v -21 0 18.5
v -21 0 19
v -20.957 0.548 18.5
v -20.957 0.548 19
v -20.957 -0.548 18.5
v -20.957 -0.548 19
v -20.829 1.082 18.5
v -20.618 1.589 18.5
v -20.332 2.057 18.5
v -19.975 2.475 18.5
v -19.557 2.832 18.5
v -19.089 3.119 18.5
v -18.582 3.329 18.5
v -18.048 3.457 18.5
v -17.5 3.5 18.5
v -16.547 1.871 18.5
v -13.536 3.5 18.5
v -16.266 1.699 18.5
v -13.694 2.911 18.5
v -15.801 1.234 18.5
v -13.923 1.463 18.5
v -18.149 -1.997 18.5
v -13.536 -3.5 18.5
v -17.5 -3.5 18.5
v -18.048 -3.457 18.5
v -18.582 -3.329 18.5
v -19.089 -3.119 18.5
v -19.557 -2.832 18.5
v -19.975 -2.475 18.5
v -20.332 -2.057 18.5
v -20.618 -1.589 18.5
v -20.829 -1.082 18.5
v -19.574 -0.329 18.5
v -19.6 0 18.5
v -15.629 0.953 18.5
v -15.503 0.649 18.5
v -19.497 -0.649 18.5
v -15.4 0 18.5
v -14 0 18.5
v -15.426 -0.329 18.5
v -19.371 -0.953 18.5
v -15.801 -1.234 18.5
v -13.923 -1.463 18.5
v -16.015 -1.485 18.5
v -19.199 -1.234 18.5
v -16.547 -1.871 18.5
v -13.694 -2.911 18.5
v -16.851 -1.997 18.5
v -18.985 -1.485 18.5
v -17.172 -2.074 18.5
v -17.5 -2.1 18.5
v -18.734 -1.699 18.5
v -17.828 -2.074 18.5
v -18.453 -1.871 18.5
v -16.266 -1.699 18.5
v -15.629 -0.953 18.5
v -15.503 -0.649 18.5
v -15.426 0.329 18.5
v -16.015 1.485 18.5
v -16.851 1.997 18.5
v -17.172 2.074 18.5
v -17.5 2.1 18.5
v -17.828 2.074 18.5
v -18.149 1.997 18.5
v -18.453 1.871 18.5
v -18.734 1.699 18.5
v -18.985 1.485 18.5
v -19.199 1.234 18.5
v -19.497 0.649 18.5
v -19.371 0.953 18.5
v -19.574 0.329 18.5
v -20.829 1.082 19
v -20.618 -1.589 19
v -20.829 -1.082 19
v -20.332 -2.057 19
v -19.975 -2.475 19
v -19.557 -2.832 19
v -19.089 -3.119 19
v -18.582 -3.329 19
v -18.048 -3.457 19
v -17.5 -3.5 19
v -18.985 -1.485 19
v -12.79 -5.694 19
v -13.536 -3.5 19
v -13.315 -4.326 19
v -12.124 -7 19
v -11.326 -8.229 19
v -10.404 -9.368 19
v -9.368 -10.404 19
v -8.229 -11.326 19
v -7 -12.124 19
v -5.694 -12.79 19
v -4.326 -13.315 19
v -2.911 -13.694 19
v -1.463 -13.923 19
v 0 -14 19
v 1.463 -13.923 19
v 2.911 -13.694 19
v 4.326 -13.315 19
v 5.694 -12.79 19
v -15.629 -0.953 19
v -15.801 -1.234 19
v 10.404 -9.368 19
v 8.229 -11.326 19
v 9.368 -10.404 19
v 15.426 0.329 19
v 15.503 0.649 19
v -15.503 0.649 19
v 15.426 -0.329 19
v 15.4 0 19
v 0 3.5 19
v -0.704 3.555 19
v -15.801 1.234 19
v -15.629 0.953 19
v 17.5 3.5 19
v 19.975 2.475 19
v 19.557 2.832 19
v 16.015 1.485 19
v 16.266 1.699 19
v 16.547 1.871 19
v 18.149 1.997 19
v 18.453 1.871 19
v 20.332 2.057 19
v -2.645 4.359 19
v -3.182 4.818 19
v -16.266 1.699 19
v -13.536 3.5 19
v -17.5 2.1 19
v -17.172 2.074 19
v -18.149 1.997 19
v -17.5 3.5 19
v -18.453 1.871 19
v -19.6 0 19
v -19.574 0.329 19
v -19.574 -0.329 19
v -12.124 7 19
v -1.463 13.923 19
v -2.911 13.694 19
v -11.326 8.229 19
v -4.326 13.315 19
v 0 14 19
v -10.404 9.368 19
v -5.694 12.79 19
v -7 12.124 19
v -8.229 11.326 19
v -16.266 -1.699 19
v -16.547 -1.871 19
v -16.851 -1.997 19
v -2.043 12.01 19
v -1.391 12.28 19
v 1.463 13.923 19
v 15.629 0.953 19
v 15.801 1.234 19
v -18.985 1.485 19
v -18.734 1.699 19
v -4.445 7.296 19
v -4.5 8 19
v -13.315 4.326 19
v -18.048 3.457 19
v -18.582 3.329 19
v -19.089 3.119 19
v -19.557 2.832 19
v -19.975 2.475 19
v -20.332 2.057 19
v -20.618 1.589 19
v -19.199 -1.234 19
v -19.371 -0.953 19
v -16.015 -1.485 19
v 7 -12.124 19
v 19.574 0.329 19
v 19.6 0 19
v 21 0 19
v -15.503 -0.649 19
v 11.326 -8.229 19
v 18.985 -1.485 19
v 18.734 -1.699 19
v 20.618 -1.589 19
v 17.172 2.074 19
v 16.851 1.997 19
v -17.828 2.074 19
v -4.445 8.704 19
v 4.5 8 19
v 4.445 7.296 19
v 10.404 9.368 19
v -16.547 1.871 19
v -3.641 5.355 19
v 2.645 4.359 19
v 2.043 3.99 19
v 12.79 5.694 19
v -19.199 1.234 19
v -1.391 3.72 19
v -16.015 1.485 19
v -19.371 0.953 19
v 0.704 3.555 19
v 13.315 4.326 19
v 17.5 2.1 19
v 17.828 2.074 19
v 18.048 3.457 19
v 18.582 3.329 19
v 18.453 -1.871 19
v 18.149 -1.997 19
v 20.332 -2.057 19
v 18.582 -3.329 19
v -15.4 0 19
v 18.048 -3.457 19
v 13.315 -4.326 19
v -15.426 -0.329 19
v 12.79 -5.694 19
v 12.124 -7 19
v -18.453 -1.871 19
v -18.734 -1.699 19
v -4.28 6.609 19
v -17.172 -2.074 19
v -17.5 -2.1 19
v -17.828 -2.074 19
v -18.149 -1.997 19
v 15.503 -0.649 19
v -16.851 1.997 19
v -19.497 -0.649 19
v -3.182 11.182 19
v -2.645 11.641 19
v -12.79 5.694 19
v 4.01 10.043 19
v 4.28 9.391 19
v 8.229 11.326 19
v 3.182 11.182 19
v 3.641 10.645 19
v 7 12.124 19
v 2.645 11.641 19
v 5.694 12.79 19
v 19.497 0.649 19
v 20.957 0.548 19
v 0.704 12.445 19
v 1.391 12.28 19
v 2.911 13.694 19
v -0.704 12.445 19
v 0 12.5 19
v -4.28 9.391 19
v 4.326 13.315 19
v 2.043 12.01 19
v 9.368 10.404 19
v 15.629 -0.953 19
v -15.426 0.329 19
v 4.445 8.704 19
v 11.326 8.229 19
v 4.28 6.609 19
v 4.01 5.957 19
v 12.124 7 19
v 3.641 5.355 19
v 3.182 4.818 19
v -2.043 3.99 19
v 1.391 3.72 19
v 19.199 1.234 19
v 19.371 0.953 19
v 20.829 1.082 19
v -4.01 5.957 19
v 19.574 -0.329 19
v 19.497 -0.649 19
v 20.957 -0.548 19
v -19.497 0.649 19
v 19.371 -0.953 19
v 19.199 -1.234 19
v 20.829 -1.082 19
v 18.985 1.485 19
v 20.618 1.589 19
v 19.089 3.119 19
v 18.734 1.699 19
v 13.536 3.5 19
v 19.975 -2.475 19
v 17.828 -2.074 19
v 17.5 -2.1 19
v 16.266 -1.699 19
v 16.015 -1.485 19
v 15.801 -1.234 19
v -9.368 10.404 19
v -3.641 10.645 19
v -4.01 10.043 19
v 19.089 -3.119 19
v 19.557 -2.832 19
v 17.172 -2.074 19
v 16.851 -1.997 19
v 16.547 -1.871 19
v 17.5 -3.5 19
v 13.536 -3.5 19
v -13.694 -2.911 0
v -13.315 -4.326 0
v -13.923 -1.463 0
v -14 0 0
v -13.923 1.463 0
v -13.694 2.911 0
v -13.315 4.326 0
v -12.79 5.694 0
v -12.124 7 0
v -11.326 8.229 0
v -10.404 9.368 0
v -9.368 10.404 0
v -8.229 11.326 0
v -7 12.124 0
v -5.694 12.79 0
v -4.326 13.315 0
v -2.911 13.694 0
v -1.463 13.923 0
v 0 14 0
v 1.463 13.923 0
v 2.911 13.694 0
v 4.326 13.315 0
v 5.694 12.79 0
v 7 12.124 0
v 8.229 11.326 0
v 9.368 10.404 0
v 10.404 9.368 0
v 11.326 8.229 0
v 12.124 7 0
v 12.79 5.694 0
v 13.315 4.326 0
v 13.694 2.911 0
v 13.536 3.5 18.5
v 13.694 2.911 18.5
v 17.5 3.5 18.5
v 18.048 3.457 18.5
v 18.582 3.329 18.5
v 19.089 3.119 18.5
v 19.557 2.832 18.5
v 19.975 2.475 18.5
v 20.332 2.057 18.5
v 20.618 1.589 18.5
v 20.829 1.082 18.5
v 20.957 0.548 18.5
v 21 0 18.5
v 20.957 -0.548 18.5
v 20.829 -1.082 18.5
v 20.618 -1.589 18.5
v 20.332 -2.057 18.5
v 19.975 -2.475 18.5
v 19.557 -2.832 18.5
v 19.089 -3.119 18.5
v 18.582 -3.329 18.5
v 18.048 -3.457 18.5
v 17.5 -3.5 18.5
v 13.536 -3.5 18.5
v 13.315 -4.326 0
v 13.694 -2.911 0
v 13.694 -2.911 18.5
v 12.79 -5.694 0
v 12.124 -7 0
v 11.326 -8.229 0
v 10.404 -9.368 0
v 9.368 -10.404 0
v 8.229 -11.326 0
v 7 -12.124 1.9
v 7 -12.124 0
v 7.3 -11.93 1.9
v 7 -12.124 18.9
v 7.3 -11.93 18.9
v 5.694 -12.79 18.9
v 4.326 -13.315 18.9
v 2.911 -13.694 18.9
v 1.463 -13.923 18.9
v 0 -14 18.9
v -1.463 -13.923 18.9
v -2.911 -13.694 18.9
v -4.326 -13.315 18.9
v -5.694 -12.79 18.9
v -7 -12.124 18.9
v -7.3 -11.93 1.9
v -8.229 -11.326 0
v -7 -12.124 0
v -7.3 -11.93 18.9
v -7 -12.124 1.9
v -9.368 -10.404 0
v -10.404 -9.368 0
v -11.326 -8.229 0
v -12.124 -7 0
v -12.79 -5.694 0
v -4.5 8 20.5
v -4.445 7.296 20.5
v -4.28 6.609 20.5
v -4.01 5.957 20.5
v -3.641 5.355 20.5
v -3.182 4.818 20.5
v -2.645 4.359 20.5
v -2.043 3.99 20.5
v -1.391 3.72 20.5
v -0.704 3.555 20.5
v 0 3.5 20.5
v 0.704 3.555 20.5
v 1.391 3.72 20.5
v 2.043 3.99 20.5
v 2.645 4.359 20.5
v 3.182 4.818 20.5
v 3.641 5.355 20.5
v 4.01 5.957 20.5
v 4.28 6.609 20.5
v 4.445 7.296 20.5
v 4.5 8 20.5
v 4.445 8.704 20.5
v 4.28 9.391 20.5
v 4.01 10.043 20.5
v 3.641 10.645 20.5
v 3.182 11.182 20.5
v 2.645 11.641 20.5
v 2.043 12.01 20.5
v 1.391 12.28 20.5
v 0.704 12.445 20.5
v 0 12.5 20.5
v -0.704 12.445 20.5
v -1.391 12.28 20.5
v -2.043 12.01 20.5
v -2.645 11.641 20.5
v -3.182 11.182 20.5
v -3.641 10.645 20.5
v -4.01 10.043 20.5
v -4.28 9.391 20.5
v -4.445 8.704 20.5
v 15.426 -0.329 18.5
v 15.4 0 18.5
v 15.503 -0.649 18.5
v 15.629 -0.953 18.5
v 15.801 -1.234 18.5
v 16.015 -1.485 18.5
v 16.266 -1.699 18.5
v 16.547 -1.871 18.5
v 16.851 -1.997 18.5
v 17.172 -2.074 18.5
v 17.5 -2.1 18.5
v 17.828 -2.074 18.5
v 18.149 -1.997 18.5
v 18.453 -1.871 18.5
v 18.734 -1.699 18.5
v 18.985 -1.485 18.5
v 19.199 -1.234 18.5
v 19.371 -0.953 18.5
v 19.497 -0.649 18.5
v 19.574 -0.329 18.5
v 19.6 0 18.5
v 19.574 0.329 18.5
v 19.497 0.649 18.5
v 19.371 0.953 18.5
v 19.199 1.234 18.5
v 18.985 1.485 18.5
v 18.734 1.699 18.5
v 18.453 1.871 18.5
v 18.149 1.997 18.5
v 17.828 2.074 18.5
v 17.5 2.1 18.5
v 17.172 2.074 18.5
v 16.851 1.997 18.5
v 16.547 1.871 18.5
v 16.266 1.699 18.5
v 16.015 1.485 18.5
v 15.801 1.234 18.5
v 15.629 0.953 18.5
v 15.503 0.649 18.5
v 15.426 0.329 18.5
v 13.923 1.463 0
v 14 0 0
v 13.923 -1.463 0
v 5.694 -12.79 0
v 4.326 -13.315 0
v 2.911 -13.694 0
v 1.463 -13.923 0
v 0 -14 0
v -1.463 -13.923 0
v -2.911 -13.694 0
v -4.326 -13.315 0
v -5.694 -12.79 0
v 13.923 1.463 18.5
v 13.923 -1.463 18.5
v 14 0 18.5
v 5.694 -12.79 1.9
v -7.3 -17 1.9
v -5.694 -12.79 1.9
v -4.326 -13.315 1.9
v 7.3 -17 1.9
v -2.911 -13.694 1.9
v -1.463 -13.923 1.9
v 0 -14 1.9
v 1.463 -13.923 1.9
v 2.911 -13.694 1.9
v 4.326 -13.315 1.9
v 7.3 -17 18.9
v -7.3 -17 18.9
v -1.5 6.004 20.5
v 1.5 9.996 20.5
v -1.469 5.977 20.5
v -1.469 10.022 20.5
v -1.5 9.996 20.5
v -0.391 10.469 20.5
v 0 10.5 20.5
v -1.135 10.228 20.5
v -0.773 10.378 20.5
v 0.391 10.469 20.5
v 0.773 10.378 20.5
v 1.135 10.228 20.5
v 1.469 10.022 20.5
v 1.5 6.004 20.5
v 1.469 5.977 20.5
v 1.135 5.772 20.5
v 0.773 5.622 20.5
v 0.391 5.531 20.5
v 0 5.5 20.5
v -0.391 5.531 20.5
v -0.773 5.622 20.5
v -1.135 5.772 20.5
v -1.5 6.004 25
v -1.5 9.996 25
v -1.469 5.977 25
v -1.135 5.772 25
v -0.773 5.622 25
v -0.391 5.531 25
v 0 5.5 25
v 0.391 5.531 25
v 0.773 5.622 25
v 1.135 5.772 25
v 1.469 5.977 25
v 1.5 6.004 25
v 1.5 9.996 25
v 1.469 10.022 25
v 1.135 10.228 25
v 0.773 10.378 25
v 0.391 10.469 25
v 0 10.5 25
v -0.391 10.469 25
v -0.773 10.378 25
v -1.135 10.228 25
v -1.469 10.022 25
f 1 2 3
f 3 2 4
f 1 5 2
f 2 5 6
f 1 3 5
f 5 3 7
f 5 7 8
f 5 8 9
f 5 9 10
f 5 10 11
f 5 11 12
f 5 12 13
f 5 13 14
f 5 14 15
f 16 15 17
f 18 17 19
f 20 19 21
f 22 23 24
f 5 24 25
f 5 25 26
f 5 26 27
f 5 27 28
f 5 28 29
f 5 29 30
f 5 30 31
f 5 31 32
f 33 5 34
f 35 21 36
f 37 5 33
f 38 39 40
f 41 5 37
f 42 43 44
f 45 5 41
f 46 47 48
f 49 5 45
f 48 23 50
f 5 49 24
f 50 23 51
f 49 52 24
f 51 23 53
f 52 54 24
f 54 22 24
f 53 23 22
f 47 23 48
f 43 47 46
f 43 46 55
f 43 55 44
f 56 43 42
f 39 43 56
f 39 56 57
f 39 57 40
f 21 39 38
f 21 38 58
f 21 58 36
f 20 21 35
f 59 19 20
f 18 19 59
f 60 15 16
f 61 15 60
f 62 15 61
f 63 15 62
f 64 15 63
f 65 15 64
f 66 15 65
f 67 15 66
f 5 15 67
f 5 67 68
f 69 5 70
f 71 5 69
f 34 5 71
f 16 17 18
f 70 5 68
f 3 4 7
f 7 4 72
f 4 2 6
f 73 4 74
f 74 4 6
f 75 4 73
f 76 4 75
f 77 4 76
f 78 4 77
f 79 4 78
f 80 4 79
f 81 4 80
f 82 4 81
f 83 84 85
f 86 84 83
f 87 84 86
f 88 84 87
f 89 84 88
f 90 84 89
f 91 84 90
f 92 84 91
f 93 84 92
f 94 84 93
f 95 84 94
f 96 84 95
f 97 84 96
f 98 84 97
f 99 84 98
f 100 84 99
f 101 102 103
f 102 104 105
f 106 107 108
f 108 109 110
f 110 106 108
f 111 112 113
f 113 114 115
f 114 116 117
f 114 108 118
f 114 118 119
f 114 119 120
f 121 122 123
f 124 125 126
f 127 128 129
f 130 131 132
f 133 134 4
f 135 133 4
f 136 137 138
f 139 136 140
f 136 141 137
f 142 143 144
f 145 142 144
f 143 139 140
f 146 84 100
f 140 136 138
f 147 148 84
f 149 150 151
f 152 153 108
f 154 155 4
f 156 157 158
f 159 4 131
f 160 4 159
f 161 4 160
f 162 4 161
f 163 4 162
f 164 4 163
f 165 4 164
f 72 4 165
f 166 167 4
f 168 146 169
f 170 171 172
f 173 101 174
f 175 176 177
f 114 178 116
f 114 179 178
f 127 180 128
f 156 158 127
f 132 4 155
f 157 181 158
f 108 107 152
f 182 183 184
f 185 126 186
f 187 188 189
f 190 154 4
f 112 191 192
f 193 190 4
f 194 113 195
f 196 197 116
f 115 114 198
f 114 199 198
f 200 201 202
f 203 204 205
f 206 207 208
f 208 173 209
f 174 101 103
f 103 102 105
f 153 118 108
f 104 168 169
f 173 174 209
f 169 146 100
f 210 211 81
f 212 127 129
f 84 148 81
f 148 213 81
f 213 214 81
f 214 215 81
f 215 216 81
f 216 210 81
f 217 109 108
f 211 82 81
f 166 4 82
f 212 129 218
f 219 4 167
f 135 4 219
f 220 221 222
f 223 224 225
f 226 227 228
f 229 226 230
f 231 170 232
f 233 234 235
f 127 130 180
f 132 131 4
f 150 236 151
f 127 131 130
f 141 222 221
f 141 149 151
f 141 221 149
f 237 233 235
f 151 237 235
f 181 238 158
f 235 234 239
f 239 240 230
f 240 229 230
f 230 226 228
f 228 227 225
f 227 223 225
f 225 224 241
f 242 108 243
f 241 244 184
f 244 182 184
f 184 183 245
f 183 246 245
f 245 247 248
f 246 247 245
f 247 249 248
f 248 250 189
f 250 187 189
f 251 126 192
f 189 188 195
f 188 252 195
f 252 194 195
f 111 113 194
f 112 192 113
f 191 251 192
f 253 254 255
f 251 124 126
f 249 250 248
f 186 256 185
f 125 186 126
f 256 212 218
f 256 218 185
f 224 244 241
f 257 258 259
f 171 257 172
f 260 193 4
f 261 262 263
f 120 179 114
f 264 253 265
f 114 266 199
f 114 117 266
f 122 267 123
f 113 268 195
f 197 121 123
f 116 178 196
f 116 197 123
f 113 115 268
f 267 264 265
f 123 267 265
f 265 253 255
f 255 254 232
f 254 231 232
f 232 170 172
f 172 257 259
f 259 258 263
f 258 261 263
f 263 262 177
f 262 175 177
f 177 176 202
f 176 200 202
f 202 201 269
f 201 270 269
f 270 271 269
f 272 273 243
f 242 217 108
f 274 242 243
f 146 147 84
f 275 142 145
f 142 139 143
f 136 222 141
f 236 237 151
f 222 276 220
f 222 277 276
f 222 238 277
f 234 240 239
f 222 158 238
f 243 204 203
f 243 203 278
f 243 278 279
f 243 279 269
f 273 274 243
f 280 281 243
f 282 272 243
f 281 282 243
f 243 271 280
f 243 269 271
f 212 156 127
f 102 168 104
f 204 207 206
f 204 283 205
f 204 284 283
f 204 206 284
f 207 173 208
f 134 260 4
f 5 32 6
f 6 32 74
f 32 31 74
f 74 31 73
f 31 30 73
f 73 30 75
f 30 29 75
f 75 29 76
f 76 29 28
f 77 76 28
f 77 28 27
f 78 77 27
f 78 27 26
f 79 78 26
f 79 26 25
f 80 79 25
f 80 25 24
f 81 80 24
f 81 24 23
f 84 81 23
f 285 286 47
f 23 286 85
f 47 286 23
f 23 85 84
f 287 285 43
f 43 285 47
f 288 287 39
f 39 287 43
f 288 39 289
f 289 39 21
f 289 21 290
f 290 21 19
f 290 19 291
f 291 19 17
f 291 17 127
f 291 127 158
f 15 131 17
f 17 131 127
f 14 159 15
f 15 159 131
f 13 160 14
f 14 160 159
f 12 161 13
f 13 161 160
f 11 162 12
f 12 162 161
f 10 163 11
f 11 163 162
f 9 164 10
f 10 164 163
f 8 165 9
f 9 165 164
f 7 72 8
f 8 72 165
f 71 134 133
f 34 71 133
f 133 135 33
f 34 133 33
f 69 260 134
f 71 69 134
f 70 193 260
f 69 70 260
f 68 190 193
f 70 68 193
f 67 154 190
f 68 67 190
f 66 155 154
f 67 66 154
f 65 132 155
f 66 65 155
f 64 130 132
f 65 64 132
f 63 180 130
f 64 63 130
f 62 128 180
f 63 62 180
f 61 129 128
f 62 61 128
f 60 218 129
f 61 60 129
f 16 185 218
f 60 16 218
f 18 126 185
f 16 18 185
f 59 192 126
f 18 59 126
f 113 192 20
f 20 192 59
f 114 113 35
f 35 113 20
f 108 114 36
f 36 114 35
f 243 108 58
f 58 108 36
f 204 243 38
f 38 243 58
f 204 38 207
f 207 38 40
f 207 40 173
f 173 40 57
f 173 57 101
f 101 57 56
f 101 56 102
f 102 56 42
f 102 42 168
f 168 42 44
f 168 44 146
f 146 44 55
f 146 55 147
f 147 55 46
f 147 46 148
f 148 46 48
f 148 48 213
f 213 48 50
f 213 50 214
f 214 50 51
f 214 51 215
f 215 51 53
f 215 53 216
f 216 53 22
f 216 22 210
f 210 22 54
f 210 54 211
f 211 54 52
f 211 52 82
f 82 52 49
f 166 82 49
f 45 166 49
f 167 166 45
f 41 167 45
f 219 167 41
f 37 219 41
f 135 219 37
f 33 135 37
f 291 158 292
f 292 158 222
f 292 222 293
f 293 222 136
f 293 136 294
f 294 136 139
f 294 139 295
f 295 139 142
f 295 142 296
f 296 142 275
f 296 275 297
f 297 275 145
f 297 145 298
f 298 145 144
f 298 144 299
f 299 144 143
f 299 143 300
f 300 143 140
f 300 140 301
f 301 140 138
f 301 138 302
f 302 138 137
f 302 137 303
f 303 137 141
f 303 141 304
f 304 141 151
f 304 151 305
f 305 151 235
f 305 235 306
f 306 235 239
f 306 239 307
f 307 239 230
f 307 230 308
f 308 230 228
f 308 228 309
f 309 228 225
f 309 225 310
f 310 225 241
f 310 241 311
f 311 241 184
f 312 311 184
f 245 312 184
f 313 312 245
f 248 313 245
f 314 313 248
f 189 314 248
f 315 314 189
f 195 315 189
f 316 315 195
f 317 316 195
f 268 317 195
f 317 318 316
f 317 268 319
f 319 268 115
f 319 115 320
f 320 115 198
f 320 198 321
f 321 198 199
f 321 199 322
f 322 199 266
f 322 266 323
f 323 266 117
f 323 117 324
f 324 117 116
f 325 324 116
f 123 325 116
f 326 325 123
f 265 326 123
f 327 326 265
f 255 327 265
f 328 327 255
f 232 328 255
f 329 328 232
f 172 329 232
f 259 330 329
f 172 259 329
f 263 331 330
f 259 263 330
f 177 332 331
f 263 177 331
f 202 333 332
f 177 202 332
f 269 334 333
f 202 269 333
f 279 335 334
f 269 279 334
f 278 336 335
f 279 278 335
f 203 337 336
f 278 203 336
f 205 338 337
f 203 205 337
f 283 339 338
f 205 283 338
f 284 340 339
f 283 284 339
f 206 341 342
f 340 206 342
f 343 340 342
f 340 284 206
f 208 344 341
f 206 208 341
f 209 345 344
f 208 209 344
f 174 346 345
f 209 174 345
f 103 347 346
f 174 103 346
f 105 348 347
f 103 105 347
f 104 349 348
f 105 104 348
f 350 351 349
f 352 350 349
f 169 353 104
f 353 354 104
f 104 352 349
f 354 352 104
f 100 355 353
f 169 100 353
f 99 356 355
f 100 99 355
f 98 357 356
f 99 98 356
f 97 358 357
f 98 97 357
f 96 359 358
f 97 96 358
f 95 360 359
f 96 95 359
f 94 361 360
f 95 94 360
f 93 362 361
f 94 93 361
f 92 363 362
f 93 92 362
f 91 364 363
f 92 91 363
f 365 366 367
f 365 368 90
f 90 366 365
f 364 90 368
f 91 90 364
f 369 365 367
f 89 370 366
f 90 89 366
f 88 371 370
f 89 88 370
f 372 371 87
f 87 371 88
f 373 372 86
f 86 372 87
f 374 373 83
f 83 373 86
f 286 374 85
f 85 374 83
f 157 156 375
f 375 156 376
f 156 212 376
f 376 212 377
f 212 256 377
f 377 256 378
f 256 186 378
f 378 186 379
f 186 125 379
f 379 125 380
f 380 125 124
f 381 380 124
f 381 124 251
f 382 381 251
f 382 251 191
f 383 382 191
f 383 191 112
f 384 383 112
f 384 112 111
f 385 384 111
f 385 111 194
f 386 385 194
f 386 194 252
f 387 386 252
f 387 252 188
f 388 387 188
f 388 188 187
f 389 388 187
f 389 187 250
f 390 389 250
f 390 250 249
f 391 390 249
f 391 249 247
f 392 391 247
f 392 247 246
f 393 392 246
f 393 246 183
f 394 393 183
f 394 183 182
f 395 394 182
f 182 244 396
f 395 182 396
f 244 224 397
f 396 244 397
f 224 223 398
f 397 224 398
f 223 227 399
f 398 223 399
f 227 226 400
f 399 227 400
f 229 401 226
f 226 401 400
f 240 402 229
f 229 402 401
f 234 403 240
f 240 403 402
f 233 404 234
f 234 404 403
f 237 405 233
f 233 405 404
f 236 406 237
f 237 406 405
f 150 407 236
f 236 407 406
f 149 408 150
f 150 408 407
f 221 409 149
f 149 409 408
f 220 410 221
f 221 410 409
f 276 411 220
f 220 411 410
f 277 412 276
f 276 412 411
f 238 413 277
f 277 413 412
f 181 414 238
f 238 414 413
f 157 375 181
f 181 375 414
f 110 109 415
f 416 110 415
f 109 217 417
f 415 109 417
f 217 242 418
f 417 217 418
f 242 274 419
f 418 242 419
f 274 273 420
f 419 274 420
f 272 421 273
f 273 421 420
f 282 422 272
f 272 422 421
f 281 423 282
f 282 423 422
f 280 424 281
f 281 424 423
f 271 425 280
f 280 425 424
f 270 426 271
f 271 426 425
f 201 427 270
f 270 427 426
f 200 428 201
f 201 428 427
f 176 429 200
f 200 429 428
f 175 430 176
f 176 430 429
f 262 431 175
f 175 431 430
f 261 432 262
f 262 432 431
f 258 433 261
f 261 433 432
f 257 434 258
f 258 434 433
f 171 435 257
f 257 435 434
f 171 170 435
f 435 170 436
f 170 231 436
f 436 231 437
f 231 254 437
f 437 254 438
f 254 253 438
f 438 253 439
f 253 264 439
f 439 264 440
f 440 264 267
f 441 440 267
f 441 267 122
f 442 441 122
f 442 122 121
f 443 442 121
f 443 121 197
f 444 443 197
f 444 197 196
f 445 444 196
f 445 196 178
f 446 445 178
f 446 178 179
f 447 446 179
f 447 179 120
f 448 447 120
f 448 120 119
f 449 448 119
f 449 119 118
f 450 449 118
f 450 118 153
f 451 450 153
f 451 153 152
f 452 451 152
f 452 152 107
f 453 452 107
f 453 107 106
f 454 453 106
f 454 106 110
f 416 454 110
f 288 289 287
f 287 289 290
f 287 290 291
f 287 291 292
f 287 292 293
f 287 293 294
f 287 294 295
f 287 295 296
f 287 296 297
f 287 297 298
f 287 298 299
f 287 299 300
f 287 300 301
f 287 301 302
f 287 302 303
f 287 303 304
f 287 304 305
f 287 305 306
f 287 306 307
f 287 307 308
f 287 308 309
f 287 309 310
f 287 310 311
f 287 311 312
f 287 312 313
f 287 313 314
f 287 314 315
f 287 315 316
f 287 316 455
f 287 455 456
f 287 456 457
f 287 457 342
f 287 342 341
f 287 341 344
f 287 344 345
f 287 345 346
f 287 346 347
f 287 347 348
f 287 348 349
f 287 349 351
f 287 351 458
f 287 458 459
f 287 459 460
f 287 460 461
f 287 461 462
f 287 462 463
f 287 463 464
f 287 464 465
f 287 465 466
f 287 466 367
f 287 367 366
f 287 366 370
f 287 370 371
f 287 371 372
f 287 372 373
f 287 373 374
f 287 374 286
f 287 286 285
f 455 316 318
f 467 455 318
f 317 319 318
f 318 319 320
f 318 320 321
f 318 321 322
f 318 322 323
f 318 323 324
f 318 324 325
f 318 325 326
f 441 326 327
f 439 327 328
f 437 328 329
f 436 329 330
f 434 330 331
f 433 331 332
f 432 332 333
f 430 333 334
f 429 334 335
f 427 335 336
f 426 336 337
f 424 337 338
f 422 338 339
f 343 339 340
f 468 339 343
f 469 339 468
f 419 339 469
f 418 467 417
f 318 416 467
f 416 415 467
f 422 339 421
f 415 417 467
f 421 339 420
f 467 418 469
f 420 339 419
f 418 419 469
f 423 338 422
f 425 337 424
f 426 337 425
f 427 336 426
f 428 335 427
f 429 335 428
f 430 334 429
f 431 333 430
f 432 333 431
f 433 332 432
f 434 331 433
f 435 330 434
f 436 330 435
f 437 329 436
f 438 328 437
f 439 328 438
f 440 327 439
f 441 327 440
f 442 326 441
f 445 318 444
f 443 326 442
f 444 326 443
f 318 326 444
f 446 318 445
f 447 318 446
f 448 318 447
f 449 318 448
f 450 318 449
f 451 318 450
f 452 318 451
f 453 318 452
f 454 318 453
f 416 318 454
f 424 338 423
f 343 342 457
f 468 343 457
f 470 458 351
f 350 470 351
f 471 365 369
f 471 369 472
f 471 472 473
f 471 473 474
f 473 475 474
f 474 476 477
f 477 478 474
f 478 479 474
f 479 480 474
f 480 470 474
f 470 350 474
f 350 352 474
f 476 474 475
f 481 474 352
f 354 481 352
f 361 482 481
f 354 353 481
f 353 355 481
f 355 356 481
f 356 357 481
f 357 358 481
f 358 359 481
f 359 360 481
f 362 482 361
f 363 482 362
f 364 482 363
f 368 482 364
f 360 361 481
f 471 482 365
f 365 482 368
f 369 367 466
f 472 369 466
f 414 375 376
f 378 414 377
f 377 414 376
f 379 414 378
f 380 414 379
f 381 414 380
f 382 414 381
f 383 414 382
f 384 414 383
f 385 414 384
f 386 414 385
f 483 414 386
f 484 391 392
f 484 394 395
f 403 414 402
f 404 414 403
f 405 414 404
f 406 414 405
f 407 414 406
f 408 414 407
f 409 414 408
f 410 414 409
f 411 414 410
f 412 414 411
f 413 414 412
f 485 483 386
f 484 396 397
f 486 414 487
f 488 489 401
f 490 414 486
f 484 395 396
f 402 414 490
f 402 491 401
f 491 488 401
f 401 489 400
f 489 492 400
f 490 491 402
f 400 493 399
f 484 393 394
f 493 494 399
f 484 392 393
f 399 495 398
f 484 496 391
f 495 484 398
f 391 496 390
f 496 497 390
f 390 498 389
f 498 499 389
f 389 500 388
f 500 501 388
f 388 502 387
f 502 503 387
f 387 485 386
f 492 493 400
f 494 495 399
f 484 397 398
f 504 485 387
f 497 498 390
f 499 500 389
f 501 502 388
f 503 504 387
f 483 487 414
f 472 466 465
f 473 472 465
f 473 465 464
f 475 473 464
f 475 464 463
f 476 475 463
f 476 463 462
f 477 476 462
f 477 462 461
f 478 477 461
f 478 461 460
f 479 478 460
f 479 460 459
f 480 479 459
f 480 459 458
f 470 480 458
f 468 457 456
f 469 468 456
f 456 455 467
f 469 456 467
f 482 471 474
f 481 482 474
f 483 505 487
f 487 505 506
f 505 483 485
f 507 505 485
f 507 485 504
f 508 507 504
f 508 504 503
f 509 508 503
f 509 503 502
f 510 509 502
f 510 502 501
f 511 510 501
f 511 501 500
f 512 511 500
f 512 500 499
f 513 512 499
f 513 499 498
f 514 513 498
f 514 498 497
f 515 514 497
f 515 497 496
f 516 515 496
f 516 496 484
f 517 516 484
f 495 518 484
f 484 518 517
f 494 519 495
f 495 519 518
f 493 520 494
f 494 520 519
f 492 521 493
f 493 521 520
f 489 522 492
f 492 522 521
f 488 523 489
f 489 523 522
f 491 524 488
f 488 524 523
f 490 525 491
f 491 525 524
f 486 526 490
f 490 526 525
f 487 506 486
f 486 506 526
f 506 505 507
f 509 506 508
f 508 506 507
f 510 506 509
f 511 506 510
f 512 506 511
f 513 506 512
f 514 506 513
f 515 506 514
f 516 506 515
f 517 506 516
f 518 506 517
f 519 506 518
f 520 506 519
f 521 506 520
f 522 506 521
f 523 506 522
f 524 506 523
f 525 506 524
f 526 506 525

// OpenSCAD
// 28BYJ-48 Stepper Motor Model

// Mark Benson

// 23/07/2013

// Creative Commons Non Commerical

module stepper28BYJ()
{

difference()
{
	
	union()
	{
		//Body
		color("SILVER") cylinder(r=28/2, h=19, $fn=60);

		//Base of motor shaft
		color("SILVER") translate([0,8,19]) cylinder(r=9/2, h=1.5, $fn=40);

		//Motor shaft
		color("SILVER") translate([0,8,20.5]) 
		intersection()
		{
		cylinder(r=5/2, h=9, $fn=40);
		cube([3,6,9],center=true);
		}

		//Left mounting lug
		color("SILVER") translate([-35/2,0,18.5]) mountingLug();
		
		//Right mounting lug
		color("SILVER") translate([35/2,0,18.5]) rotate([0,0,180]) mountingLug();
	
		difference()
		{
			//Cable entry housing
			color("BLUE") translate([-14.6/2,-17,1.9]) cube([14.6,17,17]);

			cylinder(r=27/2, h=29, $fn=60);
		}

	}

	union()
	{
		//Flat on motor shaft
		//translate([-5,0,22]) cube([10,7,25]);
	}
}

}//end of stepper28BYJ module wrapper

module mountingLug()
{
	difference()
	{
		hull()
		{
			cylinder(r=7/2, h=0.5, $fn=40);
			translate([0,-7/2,0]) cube([7,7,0.5]);
		}

		translate([0,0,-1]) cylinder(r=4.2/2, h=2, $fn=40);
	}
}

//Call stepper module - comment this out if you include this file in another model
stepper28BYJ();
